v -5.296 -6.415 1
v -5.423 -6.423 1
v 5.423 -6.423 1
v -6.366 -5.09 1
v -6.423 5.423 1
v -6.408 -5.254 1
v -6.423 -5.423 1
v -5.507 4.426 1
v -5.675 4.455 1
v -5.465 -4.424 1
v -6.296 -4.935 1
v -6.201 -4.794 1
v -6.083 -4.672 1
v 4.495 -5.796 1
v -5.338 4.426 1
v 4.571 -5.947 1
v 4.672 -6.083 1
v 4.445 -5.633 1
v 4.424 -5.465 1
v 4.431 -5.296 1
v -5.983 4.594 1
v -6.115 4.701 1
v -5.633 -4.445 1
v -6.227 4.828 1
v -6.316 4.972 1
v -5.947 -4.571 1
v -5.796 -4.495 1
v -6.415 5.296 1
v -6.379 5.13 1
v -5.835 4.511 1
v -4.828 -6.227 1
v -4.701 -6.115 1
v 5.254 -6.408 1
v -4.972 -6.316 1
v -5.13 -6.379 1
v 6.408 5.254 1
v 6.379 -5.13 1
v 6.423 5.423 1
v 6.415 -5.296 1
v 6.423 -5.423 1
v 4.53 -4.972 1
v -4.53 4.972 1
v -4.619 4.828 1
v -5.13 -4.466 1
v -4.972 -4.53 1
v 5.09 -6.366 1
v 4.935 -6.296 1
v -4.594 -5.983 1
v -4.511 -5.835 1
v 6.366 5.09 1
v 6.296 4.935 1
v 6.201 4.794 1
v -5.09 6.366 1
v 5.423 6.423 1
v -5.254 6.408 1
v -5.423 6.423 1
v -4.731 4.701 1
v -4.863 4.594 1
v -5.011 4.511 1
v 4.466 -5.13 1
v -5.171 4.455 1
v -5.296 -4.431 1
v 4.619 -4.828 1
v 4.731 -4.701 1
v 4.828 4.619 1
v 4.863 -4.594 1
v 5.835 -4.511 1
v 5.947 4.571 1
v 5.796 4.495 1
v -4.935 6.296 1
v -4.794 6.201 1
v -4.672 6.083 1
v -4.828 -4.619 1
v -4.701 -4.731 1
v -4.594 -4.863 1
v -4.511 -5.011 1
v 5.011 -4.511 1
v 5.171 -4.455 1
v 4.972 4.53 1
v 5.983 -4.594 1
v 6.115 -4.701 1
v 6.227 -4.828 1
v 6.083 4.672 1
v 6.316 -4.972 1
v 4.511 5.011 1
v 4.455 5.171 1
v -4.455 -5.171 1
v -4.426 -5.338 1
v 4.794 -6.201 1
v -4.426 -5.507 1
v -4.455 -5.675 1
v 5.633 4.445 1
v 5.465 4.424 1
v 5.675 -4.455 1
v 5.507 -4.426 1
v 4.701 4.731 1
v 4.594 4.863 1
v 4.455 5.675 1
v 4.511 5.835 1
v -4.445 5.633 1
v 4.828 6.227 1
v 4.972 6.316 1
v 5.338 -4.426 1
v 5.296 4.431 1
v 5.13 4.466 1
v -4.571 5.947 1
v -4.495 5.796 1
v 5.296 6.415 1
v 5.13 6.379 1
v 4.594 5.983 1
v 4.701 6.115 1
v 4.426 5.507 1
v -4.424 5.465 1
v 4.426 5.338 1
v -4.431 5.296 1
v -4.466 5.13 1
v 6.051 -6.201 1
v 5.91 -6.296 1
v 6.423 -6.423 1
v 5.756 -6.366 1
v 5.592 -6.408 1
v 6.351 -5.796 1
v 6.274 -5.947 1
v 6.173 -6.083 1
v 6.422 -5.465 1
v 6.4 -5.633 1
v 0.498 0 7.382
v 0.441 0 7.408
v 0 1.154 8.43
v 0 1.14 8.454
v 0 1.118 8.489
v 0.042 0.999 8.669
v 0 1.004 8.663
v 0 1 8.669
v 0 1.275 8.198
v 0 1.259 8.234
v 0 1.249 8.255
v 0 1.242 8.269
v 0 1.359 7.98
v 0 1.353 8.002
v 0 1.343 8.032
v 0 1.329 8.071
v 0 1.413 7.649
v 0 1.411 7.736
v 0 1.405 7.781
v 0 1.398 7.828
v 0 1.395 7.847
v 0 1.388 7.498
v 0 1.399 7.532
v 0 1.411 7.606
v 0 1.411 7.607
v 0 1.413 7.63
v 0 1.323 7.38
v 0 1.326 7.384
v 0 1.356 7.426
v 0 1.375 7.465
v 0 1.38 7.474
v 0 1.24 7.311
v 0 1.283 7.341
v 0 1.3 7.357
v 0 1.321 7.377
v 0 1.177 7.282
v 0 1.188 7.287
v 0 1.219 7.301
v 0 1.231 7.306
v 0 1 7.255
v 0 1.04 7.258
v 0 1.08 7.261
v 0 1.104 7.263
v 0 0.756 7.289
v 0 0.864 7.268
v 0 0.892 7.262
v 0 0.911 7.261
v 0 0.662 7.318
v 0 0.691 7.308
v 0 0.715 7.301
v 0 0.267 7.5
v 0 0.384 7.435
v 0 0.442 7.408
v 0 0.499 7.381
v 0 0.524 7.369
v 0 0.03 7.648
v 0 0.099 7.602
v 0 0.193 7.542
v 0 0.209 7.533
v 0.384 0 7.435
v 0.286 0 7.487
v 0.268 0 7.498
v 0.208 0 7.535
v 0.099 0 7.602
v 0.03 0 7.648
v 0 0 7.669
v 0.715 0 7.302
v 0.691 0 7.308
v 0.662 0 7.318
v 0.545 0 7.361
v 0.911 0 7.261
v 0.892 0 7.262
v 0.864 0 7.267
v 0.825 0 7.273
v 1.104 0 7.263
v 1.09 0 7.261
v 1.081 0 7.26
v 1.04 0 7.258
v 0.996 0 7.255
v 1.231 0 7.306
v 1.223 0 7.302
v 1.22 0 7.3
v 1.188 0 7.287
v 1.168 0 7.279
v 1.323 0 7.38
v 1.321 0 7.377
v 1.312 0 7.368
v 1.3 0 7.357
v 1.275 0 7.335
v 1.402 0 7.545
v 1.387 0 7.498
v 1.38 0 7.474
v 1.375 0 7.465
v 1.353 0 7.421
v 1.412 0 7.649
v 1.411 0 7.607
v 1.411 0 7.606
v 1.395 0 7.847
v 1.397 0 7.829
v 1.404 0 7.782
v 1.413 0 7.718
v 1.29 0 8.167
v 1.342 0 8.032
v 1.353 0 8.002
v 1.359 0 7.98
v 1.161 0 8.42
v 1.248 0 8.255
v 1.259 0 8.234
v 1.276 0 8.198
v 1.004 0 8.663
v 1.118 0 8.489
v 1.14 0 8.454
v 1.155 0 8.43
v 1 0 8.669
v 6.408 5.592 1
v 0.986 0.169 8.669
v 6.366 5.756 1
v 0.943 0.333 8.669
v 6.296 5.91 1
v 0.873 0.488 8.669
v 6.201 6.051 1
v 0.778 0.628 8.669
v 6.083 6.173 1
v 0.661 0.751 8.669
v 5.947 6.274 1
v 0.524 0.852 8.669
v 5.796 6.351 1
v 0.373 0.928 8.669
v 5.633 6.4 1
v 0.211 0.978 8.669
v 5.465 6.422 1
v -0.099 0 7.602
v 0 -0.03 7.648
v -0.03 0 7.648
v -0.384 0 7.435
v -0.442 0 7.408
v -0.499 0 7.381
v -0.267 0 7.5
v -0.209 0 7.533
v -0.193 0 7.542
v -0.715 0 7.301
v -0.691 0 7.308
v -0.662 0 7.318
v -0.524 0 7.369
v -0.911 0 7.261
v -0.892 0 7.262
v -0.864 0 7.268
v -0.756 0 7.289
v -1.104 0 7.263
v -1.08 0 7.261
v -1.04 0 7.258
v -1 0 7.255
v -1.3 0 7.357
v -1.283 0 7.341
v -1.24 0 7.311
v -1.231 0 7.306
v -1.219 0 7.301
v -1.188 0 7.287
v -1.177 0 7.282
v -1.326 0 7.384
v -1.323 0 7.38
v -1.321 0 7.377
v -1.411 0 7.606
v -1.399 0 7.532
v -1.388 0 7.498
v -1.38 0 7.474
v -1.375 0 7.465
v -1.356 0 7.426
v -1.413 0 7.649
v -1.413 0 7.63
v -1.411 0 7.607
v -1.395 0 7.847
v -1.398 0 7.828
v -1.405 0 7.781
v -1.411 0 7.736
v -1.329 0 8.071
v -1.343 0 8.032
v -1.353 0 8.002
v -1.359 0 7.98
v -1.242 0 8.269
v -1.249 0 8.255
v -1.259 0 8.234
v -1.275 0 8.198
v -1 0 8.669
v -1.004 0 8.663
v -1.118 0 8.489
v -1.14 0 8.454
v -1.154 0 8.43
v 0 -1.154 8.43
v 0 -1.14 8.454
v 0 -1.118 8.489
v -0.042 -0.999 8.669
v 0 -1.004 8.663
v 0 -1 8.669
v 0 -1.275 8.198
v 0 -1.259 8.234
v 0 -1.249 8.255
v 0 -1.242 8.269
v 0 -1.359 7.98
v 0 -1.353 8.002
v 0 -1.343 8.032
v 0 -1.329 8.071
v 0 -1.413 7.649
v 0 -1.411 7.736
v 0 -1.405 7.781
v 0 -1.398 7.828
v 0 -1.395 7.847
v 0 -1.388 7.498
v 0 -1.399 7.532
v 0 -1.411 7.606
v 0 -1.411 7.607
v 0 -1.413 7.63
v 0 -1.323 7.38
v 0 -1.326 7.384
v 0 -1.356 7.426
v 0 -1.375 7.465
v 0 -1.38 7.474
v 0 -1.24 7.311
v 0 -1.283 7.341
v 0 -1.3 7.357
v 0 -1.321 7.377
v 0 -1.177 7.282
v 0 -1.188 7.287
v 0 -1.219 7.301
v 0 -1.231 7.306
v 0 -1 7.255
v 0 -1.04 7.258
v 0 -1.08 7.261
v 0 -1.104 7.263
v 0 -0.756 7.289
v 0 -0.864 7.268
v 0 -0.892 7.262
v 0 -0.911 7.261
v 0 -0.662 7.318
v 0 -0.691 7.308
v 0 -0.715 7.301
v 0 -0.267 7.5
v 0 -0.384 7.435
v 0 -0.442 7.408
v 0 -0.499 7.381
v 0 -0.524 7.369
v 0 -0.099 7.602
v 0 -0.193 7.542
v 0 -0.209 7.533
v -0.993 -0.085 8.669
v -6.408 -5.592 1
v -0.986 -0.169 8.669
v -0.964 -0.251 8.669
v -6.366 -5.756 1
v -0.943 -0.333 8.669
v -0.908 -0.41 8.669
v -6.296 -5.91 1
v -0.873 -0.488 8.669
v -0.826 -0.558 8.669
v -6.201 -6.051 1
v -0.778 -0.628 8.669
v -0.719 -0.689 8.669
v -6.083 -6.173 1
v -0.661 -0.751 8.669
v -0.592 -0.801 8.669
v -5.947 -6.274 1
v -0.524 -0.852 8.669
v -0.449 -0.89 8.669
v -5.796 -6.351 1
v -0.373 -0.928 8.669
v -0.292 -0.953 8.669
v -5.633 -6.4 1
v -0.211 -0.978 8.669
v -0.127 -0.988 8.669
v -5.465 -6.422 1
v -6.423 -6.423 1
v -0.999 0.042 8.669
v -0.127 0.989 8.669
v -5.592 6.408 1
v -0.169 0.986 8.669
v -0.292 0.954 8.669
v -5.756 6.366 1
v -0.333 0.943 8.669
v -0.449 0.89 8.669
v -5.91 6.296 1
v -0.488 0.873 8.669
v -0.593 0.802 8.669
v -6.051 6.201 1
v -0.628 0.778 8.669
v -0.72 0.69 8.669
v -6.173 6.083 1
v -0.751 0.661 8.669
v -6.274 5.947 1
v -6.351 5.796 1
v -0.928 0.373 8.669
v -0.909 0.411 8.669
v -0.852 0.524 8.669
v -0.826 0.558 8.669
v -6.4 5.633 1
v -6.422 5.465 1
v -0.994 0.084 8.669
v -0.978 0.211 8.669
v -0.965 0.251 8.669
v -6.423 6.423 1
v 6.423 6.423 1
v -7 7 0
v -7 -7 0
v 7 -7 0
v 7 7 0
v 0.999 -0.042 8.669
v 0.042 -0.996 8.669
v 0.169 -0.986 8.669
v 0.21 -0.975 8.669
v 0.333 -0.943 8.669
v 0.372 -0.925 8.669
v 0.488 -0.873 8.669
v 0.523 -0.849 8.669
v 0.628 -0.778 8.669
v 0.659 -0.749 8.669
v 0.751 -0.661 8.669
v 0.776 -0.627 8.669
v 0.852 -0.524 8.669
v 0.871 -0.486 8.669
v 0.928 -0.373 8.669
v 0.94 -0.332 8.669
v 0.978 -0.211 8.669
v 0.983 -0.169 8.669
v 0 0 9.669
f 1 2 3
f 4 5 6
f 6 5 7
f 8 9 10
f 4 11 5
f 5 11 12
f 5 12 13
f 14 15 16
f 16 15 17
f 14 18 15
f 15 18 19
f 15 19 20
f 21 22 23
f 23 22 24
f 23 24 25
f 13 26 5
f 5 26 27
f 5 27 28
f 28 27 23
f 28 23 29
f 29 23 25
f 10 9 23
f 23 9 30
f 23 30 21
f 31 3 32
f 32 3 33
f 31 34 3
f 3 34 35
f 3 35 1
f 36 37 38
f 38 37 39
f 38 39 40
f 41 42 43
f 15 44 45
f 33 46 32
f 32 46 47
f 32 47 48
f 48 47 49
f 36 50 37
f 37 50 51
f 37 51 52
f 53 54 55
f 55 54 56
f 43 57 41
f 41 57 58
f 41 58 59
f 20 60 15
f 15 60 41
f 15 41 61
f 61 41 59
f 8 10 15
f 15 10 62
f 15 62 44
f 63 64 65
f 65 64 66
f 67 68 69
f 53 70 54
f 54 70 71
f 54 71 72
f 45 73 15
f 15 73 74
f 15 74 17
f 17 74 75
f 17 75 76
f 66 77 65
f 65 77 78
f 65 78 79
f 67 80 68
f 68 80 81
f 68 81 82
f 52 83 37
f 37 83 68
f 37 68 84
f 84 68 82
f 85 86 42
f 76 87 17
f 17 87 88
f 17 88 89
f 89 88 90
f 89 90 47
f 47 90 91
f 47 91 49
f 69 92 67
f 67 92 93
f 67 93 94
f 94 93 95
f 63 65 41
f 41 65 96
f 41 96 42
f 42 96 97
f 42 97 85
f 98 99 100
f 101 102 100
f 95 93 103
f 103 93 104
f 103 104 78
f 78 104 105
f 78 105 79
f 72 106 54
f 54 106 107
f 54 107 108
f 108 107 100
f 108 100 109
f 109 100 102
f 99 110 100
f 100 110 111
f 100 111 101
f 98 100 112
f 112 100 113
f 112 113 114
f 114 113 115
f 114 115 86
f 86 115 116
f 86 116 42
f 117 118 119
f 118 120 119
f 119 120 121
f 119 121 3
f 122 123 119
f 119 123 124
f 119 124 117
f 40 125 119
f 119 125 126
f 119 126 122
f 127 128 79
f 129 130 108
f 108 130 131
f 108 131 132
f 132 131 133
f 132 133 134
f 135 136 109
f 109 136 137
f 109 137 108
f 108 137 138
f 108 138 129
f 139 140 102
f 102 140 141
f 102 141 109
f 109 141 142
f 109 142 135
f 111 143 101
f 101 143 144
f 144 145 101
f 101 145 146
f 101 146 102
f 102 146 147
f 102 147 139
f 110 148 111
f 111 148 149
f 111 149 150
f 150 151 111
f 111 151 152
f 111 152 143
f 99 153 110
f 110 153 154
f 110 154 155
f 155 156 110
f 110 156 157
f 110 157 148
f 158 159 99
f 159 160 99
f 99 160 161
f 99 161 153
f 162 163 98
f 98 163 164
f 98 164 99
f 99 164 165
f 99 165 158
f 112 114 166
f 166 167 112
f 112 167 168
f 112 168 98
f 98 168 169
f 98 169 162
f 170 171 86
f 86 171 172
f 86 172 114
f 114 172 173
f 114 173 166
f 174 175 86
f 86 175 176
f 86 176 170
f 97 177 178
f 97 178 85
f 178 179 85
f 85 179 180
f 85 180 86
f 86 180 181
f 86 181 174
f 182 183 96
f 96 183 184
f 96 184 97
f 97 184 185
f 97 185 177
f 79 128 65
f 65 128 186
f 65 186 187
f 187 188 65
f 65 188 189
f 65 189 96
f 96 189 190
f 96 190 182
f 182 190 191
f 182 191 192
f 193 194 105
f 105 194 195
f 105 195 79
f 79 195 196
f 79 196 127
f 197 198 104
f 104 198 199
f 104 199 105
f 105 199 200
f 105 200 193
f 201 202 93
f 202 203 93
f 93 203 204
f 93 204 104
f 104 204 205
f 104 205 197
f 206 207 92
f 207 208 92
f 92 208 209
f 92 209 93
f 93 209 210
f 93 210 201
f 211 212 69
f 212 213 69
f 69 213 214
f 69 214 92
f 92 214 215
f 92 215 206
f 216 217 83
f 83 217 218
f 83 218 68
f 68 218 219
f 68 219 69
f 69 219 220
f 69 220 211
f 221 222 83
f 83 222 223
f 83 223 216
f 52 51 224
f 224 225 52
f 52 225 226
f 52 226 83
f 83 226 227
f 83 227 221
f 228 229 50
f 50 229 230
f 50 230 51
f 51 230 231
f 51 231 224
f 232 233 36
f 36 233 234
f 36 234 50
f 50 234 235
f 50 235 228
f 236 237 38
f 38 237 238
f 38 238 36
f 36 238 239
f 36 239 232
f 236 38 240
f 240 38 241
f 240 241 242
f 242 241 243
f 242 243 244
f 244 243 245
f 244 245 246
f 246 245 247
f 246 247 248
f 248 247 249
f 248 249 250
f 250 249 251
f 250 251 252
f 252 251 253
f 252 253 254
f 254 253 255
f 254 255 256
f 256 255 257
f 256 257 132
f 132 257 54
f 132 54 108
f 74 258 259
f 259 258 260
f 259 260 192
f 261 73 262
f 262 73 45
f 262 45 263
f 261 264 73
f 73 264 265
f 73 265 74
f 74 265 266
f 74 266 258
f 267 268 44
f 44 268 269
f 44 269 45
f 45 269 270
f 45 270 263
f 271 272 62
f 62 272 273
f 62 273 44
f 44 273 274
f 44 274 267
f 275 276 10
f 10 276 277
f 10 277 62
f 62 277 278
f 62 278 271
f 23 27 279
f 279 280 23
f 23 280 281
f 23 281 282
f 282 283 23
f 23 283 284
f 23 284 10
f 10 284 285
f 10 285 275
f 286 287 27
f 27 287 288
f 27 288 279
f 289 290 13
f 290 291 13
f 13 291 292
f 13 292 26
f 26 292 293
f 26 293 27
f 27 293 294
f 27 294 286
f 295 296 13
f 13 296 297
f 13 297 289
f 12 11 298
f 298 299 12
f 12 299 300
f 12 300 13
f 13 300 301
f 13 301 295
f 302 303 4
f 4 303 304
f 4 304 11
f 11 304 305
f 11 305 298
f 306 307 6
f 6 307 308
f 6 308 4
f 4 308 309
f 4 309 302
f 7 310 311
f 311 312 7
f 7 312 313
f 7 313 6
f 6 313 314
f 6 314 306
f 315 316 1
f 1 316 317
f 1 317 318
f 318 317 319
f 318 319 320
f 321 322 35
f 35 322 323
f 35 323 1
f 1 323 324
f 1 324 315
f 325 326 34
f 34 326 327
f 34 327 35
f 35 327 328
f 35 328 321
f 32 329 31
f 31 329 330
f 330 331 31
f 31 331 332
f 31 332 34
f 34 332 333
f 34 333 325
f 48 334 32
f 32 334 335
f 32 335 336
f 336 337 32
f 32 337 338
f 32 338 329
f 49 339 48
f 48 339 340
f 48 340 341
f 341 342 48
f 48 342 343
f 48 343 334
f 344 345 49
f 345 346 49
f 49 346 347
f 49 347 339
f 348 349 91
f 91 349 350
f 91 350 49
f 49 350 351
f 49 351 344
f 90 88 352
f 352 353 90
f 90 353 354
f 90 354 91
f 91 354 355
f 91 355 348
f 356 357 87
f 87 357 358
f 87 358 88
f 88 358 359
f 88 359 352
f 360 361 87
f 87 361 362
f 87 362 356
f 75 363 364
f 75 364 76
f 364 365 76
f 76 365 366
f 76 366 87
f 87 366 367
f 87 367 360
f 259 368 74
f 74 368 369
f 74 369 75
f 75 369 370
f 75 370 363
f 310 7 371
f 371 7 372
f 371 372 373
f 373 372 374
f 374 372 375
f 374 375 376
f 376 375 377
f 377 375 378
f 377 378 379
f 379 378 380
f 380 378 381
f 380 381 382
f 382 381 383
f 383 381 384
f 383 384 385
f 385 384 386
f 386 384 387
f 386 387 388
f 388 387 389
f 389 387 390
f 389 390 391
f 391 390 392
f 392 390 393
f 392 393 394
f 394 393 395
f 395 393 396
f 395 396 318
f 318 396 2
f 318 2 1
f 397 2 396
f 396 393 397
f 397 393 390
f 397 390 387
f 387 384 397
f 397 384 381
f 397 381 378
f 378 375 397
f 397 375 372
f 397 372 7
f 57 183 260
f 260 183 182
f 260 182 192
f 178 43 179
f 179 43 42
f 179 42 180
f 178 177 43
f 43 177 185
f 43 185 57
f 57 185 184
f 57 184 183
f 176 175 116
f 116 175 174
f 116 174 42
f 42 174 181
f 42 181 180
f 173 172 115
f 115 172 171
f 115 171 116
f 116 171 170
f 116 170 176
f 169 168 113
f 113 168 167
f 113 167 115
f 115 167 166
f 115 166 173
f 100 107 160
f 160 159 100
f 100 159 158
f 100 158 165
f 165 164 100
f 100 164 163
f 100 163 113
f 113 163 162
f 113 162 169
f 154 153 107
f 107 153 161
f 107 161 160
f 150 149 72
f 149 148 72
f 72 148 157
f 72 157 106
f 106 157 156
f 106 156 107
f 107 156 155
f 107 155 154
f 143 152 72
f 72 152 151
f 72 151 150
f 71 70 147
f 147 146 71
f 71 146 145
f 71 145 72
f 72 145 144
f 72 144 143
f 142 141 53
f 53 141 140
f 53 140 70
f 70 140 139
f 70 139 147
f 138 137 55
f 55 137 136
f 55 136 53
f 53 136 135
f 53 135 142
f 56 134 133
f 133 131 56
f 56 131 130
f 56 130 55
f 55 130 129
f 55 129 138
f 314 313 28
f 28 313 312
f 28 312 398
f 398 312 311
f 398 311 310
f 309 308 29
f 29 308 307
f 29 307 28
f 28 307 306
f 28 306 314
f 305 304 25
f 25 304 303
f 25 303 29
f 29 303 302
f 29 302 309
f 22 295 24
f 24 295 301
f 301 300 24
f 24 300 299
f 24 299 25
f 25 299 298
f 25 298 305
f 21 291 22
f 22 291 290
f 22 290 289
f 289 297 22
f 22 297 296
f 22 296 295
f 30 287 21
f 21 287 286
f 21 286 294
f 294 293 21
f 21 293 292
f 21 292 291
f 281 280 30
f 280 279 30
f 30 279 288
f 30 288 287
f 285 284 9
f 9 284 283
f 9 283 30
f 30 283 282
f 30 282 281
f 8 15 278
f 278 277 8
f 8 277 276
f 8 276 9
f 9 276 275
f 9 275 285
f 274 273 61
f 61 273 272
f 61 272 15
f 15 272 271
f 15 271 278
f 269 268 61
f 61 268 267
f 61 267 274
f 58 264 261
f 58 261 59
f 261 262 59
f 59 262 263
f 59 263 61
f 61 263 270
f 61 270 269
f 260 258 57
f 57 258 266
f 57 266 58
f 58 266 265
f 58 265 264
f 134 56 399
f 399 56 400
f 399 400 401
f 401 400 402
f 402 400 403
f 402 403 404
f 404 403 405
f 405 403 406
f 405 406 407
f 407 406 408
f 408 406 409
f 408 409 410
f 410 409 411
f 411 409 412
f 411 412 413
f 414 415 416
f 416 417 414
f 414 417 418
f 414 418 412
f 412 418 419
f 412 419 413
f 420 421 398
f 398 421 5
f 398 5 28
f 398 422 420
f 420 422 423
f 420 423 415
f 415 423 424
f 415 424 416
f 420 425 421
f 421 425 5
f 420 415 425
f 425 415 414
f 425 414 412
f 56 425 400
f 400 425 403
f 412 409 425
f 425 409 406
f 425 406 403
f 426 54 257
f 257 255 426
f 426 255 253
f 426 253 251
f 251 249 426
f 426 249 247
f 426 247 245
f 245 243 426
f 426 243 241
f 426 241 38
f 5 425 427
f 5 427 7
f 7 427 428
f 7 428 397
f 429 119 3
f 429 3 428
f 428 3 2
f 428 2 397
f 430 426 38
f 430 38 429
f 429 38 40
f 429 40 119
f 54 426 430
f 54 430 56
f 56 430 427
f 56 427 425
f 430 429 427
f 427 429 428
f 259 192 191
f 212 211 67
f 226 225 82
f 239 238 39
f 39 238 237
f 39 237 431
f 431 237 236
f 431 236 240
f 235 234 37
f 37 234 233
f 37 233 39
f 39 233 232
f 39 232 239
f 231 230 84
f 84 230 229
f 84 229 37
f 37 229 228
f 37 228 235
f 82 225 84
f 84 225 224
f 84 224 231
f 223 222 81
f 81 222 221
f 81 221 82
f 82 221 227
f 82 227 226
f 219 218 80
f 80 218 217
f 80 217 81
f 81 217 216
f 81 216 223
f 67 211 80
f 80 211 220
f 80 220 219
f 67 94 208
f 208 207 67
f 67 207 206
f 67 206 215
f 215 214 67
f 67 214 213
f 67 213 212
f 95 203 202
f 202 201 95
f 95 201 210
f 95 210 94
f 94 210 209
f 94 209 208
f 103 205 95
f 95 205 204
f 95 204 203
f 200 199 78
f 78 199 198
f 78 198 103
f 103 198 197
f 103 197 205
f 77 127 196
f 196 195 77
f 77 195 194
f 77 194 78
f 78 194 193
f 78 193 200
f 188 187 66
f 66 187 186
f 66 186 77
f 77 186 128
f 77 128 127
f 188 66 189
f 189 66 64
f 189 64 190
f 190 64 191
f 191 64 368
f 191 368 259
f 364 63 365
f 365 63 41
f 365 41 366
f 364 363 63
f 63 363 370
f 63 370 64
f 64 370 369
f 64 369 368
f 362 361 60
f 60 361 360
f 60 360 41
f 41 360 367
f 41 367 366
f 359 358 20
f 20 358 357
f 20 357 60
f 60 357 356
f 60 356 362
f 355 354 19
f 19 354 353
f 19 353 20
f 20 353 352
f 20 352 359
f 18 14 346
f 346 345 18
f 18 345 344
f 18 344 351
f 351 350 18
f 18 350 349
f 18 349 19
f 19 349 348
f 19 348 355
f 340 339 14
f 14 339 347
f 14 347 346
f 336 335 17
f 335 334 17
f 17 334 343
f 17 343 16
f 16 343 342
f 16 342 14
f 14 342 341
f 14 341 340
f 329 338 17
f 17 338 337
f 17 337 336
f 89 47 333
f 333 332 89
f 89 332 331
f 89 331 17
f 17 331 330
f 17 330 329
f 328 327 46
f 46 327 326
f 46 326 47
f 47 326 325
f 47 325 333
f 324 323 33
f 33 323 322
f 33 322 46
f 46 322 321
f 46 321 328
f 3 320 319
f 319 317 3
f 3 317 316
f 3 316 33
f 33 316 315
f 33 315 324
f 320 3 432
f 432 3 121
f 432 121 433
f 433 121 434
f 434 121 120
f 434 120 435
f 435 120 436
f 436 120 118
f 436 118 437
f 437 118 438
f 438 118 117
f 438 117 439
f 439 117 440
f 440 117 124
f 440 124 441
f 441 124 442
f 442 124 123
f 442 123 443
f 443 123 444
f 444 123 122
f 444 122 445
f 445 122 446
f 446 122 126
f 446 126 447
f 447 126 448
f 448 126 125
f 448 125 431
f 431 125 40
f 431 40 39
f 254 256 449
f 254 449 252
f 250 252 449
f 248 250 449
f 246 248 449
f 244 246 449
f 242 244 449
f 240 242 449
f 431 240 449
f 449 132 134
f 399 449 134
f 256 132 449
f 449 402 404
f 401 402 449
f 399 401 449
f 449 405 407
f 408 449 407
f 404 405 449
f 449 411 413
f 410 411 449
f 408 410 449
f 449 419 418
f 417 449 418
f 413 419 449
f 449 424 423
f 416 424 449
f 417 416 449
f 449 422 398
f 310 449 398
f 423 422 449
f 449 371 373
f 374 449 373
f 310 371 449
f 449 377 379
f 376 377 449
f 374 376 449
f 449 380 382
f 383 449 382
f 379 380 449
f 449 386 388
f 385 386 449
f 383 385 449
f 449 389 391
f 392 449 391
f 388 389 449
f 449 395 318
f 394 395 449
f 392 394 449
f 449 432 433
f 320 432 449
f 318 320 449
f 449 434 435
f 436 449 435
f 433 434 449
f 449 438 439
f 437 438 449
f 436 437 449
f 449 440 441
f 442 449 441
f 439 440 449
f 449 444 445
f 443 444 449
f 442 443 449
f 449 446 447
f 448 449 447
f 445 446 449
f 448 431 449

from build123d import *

# Parameters (mm, degrees)
SKETCH1_W           = 14
SKETCH1_H           = 14
BOSS_EXTRUDE1_DEPTH = 1
BOSS_EXTRUDE1_TAPER = 30
SKETCH2_R           = 1
CIRPATTERN1_COUNT   = 4
SKETCH4_R           = 1
BOSS_EXTRUDE2_DEPTH = 10
BOSS_EXTRUDE2_TAPER = 45


with BuildPart() as part:
    # Sketch1 → Boss-Extrude1 (new body)
    with BuildSketch(Plane.XY):
        Rectangle(SKETCH1_W, SKETCH1_H)
    extrude(amount=BOSS_EXTRUDE1_DEPTH, taper=BOSS_EXTRUDE1_TAPER)

    # Sweep1: sweep along a path in Sketch3
    with BuildLine(Plane(origin=(0, 0, 0), x_dir=(0, 0, -1), z_dir=(0.707106781, -0.707106781, 0))) as sweep1_path:
        Line((-1, 7.668784793), (-8.668784793, 0))
    # Sketch2 → Sweep1 (sweep)
    with BuildSketch(Plane.XY.offset(1)):
        with Locations((5.422649731, 5.422649731)):
            Circle(SKETCH2_R)
    sweep1 = sweep(path=sweep1_path.line)

    # CirPattern1: Sweep1 ×4 about axis
    cirpattern1_axis = Axis((0, 0, -4.23184126), (0, 0, 1))
    for i in range(1, CIRPATTERN1_COUNT):
        add(sweep1.rotate(cirpattern1_axis, i * 360 / CIRPATTERN1_COUNT))

    # Sketch4 → Boss-Extrude2 (add)
    with BuildSketch(Plane.XY.offset(8.668784793)):
        Circle(SKETCH4_R)
    extrude(amount=BOSS_EXTRUDE2_DEPTH, taper=BOSS_EXTRUDE2_TAPER)


solid = part.part
